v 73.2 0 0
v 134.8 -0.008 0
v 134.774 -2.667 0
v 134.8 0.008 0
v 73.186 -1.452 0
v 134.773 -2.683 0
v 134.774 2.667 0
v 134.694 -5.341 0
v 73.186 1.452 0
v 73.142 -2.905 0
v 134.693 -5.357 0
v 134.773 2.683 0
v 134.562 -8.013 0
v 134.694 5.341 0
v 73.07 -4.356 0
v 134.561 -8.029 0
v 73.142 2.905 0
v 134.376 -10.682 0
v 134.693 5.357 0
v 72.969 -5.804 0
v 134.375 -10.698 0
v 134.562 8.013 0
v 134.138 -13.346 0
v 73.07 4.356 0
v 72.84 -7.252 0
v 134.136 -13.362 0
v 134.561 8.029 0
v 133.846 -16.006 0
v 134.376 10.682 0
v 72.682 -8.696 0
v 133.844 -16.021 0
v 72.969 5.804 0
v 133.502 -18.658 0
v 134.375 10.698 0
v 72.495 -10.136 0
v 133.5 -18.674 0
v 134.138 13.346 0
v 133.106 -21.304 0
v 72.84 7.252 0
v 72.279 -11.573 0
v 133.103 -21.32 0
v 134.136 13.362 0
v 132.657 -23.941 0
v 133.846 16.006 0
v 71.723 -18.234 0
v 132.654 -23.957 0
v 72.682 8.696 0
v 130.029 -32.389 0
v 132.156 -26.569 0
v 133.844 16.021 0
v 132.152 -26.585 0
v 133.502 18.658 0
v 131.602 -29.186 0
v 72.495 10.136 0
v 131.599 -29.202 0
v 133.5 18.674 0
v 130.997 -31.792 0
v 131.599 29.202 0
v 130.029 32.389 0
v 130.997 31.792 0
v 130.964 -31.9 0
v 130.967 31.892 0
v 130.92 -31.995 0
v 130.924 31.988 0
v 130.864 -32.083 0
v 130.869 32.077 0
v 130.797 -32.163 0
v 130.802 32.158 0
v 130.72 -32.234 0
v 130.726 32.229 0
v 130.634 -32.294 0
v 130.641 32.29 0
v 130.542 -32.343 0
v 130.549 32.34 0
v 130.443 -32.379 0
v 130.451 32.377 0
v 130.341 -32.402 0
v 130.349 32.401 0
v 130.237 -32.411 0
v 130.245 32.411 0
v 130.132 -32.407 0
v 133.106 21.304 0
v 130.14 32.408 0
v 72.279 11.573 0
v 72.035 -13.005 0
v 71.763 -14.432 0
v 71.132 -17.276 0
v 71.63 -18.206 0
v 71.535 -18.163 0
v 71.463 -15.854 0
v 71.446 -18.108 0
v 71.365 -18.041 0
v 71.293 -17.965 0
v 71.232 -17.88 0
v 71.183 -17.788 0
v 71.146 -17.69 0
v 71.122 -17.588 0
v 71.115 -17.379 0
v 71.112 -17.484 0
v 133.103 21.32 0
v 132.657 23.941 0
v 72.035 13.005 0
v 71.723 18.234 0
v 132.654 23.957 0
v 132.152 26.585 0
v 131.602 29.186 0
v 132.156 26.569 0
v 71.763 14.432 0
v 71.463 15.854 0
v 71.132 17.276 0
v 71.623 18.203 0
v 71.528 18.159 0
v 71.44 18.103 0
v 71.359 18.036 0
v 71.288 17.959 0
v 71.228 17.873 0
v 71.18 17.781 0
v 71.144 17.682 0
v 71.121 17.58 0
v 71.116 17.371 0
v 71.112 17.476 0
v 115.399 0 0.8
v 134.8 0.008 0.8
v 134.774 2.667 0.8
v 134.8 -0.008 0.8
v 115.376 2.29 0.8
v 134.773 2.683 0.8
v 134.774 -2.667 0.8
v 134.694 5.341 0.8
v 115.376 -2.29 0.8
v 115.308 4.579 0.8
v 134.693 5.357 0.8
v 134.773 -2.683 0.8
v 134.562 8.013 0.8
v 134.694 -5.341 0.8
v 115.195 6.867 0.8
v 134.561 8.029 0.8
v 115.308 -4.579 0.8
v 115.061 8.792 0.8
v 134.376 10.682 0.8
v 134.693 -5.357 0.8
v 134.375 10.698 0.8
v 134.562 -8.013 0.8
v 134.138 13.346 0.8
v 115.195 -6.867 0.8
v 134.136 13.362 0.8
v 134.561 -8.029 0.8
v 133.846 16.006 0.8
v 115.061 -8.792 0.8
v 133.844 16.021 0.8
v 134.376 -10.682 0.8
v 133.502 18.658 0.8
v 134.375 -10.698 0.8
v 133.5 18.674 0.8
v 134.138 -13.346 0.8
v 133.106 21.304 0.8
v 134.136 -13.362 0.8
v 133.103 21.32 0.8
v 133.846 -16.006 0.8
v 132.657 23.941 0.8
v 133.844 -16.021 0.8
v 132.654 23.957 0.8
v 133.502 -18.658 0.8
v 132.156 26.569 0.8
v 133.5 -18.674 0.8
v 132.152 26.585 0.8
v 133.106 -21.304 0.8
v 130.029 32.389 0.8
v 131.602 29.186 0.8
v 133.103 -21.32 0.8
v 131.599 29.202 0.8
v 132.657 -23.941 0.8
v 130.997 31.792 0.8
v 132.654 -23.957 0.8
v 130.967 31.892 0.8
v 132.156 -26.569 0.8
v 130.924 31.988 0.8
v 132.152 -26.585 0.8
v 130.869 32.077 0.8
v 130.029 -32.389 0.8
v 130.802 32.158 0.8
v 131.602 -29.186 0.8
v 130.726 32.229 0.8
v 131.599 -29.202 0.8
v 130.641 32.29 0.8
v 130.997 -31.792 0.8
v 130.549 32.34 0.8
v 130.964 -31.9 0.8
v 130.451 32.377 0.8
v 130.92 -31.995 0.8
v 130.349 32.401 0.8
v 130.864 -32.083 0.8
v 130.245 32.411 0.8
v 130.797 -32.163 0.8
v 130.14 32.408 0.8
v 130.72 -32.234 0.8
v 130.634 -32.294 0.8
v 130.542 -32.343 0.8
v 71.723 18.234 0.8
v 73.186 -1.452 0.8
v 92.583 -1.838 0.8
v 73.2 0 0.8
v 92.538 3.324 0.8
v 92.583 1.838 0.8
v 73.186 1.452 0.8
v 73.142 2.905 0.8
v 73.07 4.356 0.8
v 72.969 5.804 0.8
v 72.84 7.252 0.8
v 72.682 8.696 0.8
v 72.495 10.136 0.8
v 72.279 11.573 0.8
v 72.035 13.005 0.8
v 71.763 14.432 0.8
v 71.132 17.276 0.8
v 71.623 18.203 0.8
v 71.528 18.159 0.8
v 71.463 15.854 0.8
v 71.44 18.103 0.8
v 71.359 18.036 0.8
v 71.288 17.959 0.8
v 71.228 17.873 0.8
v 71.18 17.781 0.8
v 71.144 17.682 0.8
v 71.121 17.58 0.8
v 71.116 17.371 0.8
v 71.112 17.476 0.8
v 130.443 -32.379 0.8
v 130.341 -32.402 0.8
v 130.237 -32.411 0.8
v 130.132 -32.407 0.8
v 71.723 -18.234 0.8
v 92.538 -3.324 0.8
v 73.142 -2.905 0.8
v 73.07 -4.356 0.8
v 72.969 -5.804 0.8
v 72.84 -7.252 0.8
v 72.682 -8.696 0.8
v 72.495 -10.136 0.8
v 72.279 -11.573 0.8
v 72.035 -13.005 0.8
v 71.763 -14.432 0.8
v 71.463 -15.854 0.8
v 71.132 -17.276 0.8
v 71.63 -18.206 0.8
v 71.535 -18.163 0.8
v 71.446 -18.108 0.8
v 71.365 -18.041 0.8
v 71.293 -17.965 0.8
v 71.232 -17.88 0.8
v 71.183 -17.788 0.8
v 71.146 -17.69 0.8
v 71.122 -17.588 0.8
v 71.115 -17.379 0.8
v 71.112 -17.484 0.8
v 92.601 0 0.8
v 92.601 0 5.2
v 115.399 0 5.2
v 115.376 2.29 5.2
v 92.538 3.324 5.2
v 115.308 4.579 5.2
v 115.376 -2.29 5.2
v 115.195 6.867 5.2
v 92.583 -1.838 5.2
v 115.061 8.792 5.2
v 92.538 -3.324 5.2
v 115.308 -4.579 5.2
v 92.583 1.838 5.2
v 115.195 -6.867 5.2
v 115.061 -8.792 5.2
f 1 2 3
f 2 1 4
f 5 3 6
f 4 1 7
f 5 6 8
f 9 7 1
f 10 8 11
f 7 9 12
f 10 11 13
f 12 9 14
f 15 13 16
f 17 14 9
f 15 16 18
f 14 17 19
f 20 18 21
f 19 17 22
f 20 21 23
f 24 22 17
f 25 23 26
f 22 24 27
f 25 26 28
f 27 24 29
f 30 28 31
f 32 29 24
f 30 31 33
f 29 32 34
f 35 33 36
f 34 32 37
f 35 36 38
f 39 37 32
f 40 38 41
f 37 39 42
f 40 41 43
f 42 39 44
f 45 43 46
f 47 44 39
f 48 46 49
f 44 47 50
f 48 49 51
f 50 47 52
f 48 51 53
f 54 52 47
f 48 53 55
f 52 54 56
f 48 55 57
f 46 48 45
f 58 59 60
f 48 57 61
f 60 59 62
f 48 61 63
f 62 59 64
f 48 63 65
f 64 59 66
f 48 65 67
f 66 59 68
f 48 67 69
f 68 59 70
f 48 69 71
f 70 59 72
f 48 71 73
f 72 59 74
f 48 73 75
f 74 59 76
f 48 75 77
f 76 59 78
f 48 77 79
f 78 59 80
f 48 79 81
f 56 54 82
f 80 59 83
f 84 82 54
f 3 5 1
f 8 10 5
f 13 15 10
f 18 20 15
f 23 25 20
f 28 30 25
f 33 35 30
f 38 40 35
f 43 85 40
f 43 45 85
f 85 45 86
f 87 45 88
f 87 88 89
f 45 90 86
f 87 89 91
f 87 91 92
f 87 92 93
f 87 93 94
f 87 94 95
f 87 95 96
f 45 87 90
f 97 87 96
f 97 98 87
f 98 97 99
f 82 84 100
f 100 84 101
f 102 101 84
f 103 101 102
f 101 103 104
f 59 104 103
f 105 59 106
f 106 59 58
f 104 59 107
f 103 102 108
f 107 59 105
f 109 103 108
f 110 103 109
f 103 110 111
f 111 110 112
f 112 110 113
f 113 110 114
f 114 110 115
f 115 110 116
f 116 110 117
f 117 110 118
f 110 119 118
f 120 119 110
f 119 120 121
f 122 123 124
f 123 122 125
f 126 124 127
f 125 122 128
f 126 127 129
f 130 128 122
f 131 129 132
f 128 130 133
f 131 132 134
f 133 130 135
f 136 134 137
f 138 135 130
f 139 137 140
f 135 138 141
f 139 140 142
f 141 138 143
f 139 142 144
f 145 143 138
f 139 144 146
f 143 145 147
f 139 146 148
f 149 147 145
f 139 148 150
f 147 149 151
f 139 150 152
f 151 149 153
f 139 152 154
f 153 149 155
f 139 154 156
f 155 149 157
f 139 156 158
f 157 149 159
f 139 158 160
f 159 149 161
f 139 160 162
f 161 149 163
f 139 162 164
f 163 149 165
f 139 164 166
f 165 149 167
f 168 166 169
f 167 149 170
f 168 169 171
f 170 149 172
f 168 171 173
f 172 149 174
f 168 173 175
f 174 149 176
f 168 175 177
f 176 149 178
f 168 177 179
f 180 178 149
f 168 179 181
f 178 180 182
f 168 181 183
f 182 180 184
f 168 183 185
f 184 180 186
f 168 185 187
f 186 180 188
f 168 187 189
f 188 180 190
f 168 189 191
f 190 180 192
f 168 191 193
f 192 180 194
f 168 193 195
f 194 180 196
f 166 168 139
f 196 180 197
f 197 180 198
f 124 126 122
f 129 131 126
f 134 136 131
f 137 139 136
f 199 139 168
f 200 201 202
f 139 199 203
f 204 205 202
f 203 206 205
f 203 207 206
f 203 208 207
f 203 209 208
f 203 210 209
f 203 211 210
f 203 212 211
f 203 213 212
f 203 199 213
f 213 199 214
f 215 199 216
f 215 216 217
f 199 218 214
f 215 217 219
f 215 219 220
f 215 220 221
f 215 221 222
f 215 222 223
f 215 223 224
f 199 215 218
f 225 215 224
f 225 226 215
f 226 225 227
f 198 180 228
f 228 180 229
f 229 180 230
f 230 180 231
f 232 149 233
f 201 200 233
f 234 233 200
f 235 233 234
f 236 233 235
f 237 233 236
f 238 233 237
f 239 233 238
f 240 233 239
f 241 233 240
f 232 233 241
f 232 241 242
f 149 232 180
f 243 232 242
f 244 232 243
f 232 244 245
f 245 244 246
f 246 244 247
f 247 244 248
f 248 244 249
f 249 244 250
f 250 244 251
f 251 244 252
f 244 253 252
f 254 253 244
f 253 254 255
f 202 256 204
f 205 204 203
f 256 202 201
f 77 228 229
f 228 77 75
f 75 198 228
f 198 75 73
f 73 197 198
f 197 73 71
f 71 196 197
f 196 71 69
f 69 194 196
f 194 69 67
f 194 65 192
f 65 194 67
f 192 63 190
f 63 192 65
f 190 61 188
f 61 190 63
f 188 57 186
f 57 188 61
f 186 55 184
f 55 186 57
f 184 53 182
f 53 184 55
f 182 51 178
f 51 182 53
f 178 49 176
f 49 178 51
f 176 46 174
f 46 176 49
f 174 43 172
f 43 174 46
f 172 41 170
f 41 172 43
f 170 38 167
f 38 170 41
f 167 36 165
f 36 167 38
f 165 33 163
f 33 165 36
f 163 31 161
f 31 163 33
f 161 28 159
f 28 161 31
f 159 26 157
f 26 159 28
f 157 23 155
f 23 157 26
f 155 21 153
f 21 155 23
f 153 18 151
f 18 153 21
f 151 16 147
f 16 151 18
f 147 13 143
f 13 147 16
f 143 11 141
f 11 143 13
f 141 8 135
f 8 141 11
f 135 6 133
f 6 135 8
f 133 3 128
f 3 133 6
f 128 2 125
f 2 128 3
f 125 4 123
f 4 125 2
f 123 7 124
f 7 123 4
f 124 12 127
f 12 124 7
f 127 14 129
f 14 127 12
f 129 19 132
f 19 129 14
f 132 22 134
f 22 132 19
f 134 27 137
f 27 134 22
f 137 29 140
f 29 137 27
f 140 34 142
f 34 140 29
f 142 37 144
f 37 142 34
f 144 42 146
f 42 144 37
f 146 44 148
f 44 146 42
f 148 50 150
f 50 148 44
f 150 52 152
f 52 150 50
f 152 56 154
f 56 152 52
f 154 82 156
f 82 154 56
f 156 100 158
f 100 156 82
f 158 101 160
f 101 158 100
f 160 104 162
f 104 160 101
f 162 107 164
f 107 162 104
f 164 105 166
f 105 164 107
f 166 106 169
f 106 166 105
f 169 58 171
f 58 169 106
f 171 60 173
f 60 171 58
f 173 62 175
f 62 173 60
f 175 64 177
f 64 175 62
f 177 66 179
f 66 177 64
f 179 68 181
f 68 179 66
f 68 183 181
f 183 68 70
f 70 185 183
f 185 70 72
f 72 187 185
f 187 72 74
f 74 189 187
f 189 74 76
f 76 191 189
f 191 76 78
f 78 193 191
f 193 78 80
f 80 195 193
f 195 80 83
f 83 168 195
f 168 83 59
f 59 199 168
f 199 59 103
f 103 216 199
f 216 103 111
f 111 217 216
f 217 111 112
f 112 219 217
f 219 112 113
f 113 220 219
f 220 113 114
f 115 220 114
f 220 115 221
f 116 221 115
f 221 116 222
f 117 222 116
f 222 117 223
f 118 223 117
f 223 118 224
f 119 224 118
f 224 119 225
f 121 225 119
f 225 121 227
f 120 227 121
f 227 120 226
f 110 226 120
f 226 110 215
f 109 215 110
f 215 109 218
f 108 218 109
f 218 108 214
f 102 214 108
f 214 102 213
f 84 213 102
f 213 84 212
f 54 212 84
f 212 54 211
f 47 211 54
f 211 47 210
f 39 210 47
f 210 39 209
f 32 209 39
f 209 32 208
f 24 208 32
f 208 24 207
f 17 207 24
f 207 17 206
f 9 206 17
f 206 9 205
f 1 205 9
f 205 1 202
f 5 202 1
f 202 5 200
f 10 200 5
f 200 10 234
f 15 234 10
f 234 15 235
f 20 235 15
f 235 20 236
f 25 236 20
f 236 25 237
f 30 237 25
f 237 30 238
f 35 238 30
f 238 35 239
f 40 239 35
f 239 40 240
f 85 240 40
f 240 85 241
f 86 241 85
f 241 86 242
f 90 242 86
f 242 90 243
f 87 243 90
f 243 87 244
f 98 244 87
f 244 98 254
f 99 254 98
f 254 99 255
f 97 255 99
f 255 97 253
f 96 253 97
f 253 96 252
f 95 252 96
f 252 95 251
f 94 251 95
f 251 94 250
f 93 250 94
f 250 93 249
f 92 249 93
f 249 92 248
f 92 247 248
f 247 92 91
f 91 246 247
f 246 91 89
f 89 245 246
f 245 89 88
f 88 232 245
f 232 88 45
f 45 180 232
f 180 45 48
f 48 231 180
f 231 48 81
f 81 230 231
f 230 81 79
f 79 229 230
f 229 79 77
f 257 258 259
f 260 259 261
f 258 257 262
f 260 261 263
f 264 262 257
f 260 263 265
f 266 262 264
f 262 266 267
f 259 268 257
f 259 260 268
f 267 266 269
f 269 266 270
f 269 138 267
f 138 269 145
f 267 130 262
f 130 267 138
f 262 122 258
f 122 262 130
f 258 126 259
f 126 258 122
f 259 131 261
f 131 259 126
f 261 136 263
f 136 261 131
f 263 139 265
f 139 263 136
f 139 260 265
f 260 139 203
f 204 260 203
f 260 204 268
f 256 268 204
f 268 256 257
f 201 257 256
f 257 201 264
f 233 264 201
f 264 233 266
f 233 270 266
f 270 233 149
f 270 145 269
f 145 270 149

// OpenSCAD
// Gen-DG — bobbin BASE (bottom flange + hub). Print x12, flange down. Wind 24 AWG x 223 t around
// the hub with the LID glued on (coil_lid.stl). Copper lives ONLY between the flanges (no proud winds).
include <parameters.scad>;
$fn = 48;
module sector_2d(r_in, r_out, ang) {
    polygon([
        for (a = [-ang/2 : ang/24 : ang/2]) [r_in*cos(a), r_in*sin(a)],
        for (a = [ang/2 : -ang/24 : -ang/2]) [r_out*cos(a), r_out*sin(a)]
    ]);
}
module footprint_2d() { offset(r=wall) sector_2d(coil_id_r, coil_od_r, span_deg); }
module hub_2d()       { offset(delta=-coil_core_inset) sector_2d(coil_id_r, coil_od_r, span_deg); }

union() {
    linear_extrude(flange_t) footprint_2d();
    translate([0, 0, flange_t - 0.01]) linear_extrude(former_web + 0.01) hub_2d();
}
